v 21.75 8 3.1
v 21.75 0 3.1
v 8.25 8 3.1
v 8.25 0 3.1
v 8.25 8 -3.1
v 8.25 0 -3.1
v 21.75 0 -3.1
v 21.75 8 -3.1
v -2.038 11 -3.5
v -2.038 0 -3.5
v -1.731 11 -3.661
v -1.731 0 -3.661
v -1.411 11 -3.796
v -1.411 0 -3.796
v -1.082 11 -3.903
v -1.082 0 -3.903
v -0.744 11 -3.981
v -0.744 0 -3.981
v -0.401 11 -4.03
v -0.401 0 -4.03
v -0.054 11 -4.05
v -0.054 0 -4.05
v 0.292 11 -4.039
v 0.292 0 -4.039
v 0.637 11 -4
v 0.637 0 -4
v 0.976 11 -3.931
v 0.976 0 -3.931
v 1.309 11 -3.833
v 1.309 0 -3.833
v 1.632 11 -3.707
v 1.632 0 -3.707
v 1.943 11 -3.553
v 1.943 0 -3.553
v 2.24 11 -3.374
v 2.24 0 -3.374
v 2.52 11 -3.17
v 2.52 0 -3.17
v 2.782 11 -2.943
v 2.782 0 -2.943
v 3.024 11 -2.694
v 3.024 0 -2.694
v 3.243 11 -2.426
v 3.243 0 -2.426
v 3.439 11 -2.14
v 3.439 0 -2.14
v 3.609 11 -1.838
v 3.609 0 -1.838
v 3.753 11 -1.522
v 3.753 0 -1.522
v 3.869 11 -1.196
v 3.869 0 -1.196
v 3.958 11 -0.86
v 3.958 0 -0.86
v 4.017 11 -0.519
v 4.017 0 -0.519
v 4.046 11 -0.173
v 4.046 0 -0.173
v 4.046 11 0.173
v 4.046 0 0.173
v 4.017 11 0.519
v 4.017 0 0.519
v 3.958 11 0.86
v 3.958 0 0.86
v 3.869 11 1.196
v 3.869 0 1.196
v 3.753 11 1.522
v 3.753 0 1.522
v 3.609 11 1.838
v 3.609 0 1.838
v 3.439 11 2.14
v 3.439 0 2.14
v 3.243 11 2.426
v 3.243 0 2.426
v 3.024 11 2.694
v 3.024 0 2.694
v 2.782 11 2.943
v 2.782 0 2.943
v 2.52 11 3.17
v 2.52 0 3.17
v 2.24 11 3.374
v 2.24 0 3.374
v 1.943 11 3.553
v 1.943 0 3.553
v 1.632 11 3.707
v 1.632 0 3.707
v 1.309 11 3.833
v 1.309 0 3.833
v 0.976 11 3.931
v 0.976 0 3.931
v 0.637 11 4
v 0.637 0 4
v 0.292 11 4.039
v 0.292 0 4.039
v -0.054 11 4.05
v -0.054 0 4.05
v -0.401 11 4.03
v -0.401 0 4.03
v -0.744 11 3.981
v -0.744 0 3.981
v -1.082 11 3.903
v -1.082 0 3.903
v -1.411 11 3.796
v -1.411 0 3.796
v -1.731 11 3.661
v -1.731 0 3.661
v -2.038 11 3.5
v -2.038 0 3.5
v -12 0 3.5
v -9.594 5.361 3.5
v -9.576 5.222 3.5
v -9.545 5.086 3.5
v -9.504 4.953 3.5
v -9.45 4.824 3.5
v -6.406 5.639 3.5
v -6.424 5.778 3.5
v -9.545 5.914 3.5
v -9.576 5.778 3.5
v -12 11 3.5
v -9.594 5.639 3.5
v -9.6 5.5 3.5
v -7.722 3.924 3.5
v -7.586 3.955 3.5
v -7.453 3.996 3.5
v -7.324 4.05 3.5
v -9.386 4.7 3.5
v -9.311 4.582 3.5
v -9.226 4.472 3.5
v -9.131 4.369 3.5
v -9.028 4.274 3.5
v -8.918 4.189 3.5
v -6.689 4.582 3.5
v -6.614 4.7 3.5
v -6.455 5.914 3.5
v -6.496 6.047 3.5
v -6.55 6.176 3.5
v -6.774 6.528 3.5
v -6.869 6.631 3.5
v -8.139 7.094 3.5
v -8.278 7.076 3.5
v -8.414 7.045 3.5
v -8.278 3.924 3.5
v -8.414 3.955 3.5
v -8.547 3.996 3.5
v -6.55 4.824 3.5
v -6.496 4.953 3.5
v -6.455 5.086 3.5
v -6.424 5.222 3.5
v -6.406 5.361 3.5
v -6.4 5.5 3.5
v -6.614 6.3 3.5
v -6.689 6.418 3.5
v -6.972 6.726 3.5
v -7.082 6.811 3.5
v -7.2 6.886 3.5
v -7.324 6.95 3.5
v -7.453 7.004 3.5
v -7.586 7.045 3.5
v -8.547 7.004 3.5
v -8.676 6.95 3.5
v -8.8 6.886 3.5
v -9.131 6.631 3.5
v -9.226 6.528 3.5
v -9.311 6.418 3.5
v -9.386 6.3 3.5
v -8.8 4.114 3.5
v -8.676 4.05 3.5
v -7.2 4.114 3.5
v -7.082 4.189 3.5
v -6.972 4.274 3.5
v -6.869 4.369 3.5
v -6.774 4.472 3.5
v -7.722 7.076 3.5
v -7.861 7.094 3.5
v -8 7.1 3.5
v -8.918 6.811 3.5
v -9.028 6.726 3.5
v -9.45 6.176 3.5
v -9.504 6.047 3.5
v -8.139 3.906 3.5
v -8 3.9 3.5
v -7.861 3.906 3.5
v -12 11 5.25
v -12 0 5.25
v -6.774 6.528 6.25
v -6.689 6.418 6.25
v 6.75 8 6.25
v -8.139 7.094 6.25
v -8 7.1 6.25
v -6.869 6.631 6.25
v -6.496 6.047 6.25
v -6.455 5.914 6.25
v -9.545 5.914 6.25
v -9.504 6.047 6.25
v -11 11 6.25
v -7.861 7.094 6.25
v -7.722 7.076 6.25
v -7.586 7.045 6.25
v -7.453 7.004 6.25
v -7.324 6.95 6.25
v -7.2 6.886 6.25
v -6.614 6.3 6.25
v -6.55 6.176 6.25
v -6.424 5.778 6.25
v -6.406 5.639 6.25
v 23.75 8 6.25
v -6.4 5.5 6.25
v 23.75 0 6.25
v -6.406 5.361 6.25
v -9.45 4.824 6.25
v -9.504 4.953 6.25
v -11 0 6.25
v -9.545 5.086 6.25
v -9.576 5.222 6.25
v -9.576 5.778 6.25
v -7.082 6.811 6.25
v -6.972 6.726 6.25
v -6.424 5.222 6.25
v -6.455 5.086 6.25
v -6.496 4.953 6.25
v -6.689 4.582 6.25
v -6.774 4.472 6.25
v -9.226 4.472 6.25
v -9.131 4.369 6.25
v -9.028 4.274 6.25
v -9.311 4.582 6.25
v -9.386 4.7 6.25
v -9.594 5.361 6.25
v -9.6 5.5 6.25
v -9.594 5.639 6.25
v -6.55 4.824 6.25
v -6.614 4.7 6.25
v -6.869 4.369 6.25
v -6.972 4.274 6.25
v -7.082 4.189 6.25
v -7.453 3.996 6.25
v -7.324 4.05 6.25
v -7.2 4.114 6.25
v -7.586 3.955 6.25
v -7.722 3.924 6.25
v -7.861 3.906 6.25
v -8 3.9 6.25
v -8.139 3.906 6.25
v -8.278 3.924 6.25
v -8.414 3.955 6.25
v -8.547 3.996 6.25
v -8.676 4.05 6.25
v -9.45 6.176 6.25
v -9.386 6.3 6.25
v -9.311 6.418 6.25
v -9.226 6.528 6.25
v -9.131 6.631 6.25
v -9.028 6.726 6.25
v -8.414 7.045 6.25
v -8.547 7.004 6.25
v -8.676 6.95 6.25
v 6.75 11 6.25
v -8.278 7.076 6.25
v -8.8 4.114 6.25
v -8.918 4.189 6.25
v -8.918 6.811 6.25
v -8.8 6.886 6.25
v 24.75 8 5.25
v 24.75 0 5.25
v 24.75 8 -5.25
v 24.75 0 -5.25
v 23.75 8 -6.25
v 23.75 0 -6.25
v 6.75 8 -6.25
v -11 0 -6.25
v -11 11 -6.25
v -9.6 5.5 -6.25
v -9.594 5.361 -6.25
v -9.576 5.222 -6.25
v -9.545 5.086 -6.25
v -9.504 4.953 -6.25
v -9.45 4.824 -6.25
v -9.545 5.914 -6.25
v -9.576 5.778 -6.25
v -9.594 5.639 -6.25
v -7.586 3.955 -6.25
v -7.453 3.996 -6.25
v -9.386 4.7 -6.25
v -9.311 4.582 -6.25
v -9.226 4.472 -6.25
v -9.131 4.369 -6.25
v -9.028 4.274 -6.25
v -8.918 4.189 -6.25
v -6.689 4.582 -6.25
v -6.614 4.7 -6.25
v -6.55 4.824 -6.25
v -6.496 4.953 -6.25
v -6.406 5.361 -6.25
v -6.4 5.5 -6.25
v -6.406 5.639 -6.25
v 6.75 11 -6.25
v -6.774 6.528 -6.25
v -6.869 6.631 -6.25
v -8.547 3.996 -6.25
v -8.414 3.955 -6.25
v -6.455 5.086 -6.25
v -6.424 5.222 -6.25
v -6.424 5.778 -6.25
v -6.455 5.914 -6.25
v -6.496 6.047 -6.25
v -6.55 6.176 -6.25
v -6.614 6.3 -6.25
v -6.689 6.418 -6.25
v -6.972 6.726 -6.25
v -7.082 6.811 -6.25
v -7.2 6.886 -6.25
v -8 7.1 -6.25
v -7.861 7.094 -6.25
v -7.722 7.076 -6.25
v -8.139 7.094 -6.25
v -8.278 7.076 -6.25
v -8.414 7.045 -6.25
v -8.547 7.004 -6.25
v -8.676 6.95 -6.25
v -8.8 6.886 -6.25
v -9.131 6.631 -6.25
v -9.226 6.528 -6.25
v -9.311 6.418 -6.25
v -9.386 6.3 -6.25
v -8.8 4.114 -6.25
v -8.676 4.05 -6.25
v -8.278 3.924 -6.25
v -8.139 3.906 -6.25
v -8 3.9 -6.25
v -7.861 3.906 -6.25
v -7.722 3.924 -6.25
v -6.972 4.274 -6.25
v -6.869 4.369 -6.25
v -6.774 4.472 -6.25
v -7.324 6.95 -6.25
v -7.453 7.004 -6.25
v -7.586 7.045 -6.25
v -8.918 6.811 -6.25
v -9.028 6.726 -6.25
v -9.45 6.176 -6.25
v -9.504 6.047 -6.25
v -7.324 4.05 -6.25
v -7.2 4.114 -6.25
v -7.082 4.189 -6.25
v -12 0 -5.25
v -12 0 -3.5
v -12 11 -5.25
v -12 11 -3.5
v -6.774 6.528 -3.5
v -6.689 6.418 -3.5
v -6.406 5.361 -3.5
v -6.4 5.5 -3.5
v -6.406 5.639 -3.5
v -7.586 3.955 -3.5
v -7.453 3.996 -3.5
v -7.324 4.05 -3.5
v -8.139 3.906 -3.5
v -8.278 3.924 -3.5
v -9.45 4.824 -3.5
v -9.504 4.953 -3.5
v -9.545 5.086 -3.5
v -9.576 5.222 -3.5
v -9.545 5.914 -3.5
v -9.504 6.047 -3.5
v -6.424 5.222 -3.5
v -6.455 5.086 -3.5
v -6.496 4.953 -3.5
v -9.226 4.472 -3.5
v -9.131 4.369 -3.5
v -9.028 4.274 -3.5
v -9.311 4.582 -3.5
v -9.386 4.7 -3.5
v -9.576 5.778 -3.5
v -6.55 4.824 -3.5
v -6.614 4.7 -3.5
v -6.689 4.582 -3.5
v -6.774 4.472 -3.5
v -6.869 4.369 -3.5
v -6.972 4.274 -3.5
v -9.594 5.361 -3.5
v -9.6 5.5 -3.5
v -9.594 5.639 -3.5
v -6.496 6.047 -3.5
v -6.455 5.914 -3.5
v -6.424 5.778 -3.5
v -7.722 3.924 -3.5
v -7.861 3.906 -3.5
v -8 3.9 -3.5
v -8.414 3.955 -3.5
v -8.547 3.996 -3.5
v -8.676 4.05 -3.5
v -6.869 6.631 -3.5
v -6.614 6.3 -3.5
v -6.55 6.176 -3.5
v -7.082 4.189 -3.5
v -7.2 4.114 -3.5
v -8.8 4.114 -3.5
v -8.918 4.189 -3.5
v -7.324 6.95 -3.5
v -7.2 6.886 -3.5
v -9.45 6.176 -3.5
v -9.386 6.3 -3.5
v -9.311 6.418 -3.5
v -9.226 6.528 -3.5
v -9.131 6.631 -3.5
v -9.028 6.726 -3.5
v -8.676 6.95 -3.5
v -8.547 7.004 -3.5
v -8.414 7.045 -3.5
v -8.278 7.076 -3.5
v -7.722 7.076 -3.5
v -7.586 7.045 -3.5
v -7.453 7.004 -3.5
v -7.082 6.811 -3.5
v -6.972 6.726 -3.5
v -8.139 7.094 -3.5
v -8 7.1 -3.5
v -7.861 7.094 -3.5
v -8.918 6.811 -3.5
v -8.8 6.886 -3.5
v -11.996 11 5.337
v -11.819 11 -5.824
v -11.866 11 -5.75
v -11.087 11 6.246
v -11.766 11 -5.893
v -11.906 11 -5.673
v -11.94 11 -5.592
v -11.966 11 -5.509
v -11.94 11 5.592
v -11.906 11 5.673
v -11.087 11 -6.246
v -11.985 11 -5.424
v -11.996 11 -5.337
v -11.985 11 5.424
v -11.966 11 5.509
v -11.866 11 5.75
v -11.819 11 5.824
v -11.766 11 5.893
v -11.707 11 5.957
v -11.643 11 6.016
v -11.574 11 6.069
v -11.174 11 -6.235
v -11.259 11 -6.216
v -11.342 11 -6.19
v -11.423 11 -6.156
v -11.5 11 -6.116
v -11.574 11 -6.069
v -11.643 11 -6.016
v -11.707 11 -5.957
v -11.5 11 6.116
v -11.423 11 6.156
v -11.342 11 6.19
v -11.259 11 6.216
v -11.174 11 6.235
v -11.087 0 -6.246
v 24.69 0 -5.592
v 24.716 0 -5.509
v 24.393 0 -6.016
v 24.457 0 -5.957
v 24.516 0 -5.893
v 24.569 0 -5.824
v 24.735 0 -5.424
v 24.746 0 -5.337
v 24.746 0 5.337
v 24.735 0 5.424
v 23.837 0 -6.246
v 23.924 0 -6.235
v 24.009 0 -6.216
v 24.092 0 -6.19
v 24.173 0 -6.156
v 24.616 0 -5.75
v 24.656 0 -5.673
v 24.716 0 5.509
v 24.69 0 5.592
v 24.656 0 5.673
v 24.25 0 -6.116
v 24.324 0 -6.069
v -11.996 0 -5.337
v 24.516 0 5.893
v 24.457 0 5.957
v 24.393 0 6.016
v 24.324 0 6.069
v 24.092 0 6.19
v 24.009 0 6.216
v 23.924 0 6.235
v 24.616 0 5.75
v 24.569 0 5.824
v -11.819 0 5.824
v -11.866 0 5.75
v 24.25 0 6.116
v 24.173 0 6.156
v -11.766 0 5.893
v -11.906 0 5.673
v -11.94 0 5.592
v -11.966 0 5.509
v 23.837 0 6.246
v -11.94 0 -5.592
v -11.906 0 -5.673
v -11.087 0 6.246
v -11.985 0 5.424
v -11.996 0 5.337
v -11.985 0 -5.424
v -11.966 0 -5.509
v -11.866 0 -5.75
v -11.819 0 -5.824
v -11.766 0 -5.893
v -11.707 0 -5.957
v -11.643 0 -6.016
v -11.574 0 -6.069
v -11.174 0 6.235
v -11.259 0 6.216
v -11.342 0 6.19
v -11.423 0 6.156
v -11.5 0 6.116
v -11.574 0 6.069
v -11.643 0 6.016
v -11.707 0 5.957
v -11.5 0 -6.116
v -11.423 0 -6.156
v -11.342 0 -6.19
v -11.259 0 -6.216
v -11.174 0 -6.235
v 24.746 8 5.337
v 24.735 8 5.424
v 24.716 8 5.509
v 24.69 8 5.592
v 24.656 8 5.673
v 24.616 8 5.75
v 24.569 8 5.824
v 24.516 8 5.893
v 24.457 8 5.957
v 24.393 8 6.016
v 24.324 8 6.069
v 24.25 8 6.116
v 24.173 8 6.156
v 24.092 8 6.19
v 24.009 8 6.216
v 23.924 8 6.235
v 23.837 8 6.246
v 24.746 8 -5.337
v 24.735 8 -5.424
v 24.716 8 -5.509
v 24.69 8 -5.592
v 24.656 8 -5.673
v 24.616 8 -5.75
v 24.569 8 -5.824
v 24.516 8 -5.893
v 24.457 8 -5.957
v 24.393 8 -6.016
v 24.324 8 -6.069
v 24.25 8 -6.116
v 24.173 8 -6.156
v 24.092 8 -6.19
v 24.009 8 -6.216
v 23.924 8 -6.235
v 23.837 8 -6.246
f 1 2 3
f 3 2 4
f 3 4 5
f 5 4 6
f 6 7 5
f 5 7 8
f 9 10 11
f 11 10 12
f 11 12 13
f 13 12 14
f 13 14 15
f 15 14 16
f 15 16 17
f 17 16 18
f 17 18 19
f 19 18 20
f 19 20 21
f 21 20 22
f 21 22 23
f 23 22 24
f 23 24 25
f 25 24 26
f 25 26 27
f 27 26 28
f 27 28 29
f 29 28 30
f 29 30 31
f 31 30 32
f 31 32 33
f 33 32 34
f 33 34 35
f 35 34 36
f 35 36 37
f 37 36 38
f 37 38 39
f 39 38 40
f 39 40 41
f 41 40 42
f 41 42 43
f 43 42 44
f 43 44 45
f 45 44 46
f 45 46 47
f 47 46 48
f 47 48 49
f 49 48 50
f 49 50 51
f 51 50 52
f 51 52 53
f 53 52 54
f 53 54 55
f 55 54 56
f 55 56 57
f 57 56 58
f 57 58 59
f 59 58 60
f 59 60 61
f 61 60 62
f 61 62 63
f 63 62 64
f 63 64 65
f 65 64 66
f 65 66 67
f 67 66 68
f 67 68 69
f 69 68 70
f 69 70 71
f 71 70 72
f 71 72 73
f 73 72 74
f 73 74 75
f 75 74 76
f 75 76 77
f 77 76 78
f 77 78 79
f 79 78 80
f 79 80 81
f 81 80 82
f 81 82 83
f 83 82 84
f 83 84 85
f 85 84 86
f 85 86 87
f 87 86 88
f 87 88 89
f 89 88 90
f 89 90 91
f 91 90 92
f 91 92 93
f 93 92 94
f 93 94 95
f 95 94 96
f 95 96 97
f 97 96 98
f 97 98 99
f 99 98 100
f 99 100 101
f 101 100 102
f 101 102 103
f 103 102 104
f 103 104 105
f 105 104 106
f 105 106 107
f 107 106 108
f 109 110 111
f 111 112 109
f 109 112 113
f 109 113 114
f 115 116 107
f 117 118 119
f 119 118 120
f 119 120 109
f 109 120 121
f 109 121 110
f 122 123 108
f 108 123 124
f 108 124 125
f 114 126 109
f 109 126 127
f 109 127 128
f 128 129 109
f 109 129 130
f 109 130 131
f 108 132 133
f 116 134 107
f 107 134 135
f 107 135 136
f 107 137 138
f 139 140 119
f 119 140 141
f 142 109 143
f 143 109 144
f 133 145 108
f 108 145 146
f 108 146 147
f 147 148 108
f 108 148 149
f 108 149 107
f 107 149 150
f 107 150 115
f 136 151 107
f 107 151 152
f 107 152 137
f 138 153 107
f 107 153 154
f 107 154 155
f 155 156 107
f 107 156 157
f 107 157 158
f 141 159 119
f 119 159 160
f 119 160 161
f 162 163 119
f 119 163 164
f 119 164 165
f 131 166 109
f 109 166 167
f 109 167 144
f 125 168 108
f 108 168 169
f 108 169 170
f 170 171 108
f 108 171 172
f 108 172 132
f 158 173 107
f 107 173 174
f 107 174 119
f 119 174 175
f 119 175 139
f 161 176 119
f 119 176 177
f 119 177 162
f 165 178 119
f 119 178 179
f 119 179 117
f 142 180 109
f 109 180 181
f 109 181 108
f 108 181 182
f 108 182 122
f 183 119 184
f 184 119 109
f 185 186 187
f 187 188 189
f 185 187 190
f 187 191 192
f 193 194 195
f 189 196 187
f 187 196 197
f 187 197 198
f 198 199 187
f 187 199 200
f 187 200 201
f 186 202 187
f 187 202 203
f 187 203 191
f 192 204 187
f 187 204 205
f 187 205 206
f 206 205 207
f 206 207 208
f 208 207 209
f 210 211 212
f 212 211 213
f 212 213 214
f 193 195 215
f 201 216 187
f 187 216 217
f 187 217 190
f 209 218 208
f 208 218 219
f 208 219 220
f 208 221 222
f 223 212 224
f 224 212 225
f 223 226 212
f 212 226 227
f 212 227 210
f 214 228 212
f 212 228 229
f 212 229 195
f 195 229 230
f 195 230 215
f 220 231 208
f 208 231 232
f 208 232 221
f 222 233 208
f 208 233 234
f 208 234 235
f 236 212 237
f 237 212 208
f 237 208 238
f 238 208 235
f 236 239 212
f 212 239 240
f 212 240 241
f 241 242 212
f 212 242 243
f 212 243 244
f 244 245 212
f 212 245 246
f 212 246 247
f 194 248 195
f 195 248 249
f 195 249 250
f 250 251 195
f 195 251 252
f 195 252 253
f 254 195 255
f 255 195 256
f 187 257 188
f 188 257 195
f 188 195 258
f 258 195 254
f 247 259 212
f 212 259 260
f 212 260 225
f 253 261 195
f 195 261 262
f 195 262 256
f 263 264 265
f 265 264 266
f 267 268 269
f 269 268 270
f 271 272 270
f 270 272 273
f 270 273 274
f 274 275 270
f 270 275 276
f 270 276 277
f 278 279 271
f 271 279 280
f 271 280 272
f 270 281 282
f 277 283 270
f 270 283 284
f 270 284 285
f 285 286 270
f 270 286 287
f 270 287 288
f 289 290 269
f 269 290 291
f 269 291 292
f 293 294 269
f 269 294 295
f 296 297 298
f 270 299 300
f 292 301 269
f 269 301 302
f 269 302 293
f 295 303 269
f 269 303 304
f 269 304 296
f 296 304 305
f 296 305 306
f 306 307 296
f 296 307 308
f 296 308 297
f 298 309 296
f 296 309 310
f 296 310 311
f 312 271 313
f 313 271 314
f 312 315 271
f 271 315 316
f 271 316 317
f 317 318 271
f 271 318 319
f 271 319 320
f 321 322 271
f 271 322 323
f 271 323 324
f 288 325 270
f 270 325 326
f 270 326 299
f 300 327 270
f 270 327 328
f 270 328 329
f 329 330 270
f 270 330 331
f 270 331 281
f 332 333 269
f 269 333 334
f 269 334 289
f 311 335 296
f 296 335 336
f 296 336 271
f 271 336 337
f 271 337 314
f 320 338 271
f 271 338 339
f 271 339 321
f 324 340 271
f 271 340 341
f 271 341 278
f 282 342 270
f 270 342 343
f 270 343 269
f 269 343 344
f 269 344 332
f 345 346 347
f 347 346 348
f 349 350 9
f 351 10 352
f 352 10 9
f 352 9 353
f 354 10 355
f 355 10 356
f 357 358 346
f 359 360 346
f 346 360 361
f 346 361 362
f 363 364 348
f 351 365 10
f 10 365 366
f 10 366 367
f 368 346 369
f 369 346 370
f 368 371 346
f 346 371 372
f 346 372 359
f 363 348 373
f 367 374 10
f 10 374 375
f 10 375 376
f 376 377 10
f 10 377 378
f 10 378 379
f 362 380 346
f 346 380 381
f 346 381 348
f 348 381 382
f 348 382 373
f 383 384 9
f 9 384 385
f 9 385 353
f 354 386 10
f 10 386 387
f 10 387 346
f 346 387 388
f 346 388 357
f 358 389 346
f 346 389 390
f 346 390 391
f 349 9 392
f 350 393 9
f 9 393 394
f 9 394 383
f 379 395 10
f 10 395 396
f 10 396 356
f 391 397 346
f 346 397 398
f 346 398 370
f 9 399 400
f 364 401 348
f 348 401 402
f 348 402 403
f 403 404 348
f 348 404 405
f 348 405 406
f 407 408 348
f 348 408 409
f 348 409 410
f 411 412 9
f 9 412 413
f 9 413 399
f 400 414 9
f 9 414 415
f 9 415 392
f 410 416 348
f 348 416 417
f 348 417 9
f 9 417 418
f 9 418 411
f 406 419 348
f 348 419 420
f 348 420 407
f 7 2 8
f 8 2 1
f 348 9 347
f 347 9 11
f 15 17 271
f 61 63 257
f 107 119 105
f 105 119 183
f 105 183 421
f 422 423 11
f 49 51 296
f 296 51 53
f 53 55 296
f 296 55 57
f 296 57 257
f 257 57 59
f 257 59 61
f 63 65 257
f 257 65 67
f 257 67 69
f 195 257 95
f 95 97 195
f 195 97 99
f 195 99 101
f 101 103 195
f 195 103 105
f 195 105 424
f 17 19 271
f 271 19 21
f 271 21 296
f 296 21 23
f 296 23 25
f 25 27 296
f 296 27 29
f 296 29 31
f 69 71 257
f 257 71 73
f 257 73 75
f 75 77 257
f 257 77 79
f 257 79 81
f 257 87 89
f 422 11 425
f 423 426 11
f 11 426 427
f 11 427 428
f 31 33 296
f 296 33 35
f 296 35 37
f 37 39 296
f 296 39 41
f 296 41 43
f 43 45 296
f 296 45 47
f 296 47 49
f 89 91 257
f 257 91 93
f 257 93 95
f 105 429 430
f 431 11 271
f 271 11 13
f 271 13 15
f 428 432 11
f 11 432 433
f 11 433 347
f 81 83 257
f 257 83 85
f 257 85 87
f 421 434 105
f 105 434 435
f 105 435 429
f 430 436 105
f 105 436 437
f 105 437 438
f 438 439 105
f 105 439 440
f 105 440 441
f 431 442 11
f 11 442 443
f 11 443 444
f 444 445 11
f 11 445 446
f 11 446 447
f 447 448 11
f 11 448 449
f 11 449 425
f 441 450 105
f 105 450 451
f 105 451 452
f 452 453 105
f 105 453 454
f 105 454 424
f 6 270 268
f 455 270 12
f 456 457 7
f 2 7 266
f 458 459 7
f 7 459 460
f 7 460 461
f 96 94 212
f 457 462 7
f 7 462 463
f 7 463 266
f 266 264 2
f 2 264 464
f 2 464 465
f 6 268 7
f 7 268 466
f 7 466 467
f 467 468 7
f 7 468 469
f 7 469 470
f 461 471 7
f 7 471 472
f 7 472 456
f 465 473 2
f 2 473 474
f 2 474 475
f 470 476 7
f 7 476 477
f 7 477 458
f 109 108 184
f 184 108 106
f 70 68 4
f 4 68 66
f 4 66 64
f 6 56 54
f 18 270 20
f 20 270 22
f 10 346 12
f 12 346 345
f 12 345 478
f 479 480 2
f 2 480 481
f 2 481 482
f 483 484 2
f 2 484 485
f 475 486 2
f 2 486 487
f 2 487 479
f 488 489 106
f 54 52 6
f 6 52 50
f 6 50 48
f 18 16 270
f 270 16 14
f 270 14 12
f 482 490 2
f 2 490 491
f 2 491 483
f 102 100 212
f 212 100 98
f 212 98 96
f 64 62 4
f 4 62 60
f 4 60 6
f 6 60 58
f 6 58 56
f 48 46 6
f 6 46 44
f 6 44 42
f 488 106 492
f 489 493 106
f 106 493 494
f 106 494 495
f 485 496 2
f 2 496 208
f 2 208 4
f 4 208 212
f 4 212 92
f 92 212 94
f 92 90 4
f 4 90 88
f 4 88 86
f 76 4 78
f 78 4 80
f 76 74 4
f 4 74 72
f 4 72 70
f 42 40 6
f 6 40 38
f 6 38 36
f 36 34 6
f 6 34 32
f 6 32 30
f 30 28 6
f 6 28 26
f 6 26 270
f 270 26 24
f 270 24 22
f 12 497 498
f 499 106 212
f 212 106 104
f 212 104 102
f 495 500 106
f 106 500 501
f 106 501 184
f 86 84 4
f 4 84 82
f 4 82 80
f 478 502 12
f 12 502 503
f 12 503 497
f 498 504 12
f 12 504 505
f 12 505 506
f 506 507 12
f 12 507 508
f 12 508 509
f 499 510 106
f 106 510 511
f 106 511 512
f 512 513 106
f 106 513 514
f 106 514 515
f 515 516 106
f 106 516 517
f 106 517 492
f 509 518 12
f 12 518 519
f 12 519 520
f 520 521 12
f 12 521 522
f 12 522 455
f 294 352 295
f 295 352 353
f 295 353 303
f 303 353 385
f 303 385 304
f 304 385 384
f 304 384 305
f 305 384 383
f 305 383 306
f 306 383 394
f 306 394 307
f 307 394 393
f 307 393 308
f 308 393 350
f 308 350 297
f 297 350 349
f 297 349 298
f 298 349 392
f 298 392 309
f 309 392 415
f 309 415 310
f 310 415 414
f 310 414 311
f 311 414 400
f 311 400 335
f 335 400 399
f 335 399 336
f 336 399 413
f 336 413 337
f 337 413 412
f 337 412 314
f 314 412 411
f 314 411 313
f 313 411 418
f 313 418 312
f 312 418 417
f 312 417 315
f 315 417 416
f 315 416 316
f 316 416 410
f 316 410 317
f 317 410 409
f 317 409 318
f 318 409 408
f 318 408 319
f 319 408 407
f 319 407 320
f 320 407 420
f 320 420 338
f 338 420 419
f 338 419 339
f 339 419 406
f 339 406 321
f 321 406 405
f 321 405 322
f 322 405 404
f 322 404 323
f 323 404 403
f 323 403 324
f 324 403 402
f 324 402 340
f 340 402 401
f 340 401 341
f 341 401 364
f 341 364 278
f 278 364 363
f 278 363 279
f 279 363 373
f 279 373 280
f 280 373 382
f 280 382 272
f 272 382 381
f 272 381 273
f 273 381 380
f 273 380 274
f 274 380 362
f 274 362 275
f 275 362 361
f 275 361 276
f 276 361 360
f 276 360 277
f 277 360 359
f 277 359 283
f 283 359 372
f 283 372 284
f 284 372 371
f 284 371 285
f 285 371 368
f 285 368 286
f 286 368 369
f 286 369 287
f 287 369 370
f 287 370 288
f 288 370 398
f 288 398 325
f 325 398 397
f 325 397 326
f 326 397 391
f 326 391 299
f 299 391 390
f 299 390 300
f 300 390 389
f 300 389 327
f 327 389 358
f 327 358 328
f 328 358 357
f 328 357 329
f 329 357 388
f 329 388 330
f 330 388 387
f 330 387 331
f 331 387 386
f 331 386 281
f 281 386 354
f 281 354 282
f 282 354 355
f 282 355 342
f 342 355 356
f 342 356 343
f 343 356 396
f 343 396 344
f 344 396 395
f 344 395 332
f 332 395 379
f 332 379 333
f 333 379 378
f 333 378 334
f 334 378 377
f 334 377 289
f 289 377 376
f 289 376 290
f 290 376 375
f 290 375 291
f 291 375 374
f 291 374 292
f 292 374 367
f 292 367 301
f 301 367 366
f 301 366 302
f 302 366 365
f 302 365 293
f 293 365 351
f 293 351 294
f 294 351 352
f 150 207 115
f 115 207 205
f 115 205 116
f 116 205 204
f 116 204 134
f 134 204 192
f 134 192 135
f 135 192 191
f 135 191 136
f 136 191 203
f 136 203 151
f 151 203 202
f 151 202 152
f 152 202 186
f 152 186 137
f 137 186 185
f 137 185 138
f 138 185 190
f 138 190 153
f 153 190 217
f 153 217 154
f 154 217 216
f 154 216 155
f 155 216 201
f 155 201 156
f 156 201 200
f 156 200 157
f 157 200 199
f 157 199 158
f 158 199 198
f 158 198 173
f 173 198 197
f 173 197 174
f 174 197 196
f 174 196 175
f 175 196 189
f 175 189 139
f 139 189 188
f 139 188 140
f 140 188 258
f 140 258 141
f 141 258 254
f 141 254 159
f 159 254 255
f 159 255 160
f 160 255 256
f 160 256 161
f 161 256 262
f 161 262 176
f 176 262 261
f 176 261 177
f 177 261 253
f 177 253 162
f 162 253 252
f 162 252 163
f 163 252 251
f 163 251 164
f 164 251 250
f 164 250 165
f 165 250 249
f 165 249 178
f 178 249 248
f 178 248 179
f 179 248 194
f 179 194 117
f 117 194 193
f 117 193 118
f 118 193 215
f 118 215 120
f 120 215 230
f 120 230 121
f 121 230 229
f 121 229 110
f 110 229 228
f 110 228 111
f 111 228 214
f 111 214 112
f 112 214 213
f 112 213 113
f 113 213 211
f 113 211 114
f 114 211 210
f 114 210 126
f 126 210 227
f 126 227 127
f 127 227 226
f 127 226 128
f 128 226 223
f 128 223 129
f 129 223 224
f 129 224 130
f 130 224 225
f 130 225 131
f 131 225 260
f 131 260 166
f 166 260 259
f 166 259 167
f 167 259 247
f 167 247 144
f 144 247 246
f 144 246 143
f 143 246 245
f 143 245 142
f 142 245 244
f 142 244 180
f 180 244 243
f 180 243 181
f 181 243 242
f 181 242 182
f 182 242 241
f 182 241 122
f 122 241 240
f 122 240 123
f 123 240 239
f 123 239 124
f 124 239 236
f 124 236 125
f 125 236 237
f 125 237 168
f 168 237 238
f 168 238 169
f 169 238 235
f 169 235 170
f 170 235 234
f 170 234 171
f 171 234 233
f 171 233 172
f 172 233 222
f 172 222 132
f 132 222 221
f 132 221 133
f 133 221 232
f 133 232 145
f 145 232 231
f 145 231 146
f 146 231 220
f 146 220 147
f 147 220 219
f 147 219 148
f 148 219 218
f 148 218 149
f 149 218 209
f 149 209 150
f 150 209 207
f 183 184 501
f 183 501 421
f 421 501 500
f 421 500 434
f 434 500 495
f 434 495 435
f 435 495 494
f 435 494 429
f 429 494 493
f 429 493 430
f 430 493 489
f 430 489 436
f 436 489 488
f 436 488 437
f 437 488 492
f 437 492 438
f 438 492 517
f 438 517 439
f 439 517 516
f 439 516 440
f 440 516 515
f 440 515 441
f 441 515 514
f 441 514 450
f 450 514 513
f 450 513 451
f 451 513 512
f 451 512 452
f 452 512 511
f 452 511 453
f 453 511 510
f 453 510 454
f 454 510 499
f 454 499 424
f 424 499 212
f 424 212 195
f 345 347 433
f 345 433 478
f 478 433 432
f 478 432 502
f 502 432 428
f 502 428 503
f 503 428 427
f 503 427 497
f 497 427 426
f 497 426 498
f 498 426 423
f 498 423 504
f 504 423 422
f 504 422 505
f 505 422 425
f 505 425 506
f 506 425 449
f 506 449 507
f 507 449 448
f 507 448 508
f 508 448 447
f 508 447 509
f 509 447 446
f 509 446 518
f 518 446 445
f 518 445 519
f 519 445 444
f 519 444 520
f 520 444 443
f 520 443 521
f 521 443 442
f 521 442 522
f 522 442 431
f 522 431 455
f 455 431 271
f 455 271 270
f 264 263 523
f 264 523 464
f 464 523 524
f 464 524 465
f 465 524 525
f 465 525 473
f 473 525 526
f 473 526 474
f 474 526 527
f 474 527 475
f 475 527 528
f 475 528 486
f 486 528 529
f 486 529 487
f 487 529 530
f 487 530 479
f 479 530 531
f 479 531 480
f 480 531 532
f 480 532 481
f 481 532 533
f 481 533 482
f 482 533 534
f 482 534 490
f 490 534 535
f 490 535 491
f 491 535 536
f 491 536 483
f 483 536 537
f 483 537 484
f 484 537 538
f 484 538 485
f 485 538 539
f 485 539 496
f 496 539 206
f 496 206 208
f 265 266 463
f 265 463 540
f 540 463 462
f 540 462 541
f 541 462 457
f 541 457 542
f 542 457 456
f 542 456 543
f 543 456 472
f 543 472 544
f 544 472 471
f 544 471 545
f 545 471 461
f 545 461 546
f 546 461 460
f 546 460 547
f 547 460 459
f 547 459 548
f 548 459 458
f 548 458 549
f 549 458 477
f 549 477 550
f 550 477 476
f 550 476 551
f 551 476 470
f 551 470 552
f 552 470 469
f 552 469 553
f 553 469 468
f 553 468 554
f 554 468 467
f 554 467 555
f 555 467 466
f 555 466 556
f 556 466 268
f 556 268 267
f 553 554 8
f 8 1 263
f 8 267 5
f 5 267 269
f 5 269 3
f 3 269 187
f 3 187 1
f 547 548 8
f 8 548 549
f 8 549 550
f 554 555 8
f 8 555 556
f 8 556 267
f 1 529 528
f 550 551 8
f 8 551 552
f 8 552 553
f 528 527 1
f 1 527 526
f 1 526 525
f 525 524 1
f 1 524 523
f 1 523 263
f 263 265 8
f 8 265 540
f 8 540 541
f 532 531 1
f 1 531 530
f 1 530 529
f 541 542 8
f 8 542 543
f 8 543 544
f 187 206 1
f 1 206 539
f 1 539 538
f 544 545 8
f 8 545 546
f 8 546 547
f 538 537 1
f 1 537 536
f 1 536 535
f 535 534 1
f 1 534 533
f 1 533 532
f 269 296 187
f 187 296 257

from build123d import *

# Parameters (mm, degrees)
SKETCH1_W           = 13.5
SKETCH1_H           = 6.2
BOSS_EXTRUDE1_DEPTH = 11
SKETCH2_R           = 1.6
CUT_EXTRUDE1_DEPTH  = 30.829725108
FILLET1_R           = 1
SKETCH3_W           = 18
SKETCH3_H           = 3
CUT_EXTRUDE2_DEPTH  = 30.829725108


with BuildPart() as part:
    # Sketch1 → Boss-Extrude1 (new body)
    with BuildSketch(Plane(origin=(0, 0, 0), x_dir=(1, 0, 0), z_dir=(0, 1, 0))):
        with BuildLine():
            Line((-12, -6.25), (24.75, -6.25))
            Line((24.75, -6.25), (24.75, 6.25))
            Line((24.75, 6.25), (-12, 6.25))
            Line((-12, 6.25), (-12, 3.5))
            Line((-12, 3.5), (-2.037768387, 3.5))
            ThreePointArc((-2.037768387, 3.5), (2.018605711, 3.511086867), (4.05, 0))
            ThreePointArc((4.05, 0), (2.018605711, -3.511086867), (-2.037768387, -3.5))
            Line((-2.037768387, -3.5), (-12, -3.5))
            Line((-12, -3.5), (-12, -6.25))
        make_face()
        with Locations((15, 0)):
            Rectangle(SKETCH1_W, SKETCH1_H, mode=Mode.SUBTRACT)
    extrude(amount=BOSS_EXTRUDE1_DEPTH)

    # Sketch2 → Cut-Extrude1 (cut, through all)
    with BuildSketch(Plane.XY.offset(6.25)):
        with Locations((-8, 5.5)):
            Circle(SKETCH2_R)
    extrude(amount=-CUT_EXTRUDE1_DEPTH, mode=Mode.SUBTRACT)

    # Fillet1
    fillet1_edges = [part.edges().sort_by_distance(p)[0] for p in [
        (-12, 5.5, -6.25),
        (24.75, 5.5, -6.25),
        (24.75, 5.5, 6.25),
        (-12, 5.5, 6.25),
    ]]
    fillet(fillet1_edges, radius=FILLET1_R)

    # Sketch3 → Cut-Extrude2 (cut, through all)
    with BuildSketch(Plane.XY.offset(6.25)):
        with Locations((15.75, 9.5)):
            Rectangle(SKETCH3_W, SKETCH3_H)
    extrude(amount=-CUT_EXTRUDE2_DEPTH, mode=Mode.SUBTRACT)


solid = part.part
